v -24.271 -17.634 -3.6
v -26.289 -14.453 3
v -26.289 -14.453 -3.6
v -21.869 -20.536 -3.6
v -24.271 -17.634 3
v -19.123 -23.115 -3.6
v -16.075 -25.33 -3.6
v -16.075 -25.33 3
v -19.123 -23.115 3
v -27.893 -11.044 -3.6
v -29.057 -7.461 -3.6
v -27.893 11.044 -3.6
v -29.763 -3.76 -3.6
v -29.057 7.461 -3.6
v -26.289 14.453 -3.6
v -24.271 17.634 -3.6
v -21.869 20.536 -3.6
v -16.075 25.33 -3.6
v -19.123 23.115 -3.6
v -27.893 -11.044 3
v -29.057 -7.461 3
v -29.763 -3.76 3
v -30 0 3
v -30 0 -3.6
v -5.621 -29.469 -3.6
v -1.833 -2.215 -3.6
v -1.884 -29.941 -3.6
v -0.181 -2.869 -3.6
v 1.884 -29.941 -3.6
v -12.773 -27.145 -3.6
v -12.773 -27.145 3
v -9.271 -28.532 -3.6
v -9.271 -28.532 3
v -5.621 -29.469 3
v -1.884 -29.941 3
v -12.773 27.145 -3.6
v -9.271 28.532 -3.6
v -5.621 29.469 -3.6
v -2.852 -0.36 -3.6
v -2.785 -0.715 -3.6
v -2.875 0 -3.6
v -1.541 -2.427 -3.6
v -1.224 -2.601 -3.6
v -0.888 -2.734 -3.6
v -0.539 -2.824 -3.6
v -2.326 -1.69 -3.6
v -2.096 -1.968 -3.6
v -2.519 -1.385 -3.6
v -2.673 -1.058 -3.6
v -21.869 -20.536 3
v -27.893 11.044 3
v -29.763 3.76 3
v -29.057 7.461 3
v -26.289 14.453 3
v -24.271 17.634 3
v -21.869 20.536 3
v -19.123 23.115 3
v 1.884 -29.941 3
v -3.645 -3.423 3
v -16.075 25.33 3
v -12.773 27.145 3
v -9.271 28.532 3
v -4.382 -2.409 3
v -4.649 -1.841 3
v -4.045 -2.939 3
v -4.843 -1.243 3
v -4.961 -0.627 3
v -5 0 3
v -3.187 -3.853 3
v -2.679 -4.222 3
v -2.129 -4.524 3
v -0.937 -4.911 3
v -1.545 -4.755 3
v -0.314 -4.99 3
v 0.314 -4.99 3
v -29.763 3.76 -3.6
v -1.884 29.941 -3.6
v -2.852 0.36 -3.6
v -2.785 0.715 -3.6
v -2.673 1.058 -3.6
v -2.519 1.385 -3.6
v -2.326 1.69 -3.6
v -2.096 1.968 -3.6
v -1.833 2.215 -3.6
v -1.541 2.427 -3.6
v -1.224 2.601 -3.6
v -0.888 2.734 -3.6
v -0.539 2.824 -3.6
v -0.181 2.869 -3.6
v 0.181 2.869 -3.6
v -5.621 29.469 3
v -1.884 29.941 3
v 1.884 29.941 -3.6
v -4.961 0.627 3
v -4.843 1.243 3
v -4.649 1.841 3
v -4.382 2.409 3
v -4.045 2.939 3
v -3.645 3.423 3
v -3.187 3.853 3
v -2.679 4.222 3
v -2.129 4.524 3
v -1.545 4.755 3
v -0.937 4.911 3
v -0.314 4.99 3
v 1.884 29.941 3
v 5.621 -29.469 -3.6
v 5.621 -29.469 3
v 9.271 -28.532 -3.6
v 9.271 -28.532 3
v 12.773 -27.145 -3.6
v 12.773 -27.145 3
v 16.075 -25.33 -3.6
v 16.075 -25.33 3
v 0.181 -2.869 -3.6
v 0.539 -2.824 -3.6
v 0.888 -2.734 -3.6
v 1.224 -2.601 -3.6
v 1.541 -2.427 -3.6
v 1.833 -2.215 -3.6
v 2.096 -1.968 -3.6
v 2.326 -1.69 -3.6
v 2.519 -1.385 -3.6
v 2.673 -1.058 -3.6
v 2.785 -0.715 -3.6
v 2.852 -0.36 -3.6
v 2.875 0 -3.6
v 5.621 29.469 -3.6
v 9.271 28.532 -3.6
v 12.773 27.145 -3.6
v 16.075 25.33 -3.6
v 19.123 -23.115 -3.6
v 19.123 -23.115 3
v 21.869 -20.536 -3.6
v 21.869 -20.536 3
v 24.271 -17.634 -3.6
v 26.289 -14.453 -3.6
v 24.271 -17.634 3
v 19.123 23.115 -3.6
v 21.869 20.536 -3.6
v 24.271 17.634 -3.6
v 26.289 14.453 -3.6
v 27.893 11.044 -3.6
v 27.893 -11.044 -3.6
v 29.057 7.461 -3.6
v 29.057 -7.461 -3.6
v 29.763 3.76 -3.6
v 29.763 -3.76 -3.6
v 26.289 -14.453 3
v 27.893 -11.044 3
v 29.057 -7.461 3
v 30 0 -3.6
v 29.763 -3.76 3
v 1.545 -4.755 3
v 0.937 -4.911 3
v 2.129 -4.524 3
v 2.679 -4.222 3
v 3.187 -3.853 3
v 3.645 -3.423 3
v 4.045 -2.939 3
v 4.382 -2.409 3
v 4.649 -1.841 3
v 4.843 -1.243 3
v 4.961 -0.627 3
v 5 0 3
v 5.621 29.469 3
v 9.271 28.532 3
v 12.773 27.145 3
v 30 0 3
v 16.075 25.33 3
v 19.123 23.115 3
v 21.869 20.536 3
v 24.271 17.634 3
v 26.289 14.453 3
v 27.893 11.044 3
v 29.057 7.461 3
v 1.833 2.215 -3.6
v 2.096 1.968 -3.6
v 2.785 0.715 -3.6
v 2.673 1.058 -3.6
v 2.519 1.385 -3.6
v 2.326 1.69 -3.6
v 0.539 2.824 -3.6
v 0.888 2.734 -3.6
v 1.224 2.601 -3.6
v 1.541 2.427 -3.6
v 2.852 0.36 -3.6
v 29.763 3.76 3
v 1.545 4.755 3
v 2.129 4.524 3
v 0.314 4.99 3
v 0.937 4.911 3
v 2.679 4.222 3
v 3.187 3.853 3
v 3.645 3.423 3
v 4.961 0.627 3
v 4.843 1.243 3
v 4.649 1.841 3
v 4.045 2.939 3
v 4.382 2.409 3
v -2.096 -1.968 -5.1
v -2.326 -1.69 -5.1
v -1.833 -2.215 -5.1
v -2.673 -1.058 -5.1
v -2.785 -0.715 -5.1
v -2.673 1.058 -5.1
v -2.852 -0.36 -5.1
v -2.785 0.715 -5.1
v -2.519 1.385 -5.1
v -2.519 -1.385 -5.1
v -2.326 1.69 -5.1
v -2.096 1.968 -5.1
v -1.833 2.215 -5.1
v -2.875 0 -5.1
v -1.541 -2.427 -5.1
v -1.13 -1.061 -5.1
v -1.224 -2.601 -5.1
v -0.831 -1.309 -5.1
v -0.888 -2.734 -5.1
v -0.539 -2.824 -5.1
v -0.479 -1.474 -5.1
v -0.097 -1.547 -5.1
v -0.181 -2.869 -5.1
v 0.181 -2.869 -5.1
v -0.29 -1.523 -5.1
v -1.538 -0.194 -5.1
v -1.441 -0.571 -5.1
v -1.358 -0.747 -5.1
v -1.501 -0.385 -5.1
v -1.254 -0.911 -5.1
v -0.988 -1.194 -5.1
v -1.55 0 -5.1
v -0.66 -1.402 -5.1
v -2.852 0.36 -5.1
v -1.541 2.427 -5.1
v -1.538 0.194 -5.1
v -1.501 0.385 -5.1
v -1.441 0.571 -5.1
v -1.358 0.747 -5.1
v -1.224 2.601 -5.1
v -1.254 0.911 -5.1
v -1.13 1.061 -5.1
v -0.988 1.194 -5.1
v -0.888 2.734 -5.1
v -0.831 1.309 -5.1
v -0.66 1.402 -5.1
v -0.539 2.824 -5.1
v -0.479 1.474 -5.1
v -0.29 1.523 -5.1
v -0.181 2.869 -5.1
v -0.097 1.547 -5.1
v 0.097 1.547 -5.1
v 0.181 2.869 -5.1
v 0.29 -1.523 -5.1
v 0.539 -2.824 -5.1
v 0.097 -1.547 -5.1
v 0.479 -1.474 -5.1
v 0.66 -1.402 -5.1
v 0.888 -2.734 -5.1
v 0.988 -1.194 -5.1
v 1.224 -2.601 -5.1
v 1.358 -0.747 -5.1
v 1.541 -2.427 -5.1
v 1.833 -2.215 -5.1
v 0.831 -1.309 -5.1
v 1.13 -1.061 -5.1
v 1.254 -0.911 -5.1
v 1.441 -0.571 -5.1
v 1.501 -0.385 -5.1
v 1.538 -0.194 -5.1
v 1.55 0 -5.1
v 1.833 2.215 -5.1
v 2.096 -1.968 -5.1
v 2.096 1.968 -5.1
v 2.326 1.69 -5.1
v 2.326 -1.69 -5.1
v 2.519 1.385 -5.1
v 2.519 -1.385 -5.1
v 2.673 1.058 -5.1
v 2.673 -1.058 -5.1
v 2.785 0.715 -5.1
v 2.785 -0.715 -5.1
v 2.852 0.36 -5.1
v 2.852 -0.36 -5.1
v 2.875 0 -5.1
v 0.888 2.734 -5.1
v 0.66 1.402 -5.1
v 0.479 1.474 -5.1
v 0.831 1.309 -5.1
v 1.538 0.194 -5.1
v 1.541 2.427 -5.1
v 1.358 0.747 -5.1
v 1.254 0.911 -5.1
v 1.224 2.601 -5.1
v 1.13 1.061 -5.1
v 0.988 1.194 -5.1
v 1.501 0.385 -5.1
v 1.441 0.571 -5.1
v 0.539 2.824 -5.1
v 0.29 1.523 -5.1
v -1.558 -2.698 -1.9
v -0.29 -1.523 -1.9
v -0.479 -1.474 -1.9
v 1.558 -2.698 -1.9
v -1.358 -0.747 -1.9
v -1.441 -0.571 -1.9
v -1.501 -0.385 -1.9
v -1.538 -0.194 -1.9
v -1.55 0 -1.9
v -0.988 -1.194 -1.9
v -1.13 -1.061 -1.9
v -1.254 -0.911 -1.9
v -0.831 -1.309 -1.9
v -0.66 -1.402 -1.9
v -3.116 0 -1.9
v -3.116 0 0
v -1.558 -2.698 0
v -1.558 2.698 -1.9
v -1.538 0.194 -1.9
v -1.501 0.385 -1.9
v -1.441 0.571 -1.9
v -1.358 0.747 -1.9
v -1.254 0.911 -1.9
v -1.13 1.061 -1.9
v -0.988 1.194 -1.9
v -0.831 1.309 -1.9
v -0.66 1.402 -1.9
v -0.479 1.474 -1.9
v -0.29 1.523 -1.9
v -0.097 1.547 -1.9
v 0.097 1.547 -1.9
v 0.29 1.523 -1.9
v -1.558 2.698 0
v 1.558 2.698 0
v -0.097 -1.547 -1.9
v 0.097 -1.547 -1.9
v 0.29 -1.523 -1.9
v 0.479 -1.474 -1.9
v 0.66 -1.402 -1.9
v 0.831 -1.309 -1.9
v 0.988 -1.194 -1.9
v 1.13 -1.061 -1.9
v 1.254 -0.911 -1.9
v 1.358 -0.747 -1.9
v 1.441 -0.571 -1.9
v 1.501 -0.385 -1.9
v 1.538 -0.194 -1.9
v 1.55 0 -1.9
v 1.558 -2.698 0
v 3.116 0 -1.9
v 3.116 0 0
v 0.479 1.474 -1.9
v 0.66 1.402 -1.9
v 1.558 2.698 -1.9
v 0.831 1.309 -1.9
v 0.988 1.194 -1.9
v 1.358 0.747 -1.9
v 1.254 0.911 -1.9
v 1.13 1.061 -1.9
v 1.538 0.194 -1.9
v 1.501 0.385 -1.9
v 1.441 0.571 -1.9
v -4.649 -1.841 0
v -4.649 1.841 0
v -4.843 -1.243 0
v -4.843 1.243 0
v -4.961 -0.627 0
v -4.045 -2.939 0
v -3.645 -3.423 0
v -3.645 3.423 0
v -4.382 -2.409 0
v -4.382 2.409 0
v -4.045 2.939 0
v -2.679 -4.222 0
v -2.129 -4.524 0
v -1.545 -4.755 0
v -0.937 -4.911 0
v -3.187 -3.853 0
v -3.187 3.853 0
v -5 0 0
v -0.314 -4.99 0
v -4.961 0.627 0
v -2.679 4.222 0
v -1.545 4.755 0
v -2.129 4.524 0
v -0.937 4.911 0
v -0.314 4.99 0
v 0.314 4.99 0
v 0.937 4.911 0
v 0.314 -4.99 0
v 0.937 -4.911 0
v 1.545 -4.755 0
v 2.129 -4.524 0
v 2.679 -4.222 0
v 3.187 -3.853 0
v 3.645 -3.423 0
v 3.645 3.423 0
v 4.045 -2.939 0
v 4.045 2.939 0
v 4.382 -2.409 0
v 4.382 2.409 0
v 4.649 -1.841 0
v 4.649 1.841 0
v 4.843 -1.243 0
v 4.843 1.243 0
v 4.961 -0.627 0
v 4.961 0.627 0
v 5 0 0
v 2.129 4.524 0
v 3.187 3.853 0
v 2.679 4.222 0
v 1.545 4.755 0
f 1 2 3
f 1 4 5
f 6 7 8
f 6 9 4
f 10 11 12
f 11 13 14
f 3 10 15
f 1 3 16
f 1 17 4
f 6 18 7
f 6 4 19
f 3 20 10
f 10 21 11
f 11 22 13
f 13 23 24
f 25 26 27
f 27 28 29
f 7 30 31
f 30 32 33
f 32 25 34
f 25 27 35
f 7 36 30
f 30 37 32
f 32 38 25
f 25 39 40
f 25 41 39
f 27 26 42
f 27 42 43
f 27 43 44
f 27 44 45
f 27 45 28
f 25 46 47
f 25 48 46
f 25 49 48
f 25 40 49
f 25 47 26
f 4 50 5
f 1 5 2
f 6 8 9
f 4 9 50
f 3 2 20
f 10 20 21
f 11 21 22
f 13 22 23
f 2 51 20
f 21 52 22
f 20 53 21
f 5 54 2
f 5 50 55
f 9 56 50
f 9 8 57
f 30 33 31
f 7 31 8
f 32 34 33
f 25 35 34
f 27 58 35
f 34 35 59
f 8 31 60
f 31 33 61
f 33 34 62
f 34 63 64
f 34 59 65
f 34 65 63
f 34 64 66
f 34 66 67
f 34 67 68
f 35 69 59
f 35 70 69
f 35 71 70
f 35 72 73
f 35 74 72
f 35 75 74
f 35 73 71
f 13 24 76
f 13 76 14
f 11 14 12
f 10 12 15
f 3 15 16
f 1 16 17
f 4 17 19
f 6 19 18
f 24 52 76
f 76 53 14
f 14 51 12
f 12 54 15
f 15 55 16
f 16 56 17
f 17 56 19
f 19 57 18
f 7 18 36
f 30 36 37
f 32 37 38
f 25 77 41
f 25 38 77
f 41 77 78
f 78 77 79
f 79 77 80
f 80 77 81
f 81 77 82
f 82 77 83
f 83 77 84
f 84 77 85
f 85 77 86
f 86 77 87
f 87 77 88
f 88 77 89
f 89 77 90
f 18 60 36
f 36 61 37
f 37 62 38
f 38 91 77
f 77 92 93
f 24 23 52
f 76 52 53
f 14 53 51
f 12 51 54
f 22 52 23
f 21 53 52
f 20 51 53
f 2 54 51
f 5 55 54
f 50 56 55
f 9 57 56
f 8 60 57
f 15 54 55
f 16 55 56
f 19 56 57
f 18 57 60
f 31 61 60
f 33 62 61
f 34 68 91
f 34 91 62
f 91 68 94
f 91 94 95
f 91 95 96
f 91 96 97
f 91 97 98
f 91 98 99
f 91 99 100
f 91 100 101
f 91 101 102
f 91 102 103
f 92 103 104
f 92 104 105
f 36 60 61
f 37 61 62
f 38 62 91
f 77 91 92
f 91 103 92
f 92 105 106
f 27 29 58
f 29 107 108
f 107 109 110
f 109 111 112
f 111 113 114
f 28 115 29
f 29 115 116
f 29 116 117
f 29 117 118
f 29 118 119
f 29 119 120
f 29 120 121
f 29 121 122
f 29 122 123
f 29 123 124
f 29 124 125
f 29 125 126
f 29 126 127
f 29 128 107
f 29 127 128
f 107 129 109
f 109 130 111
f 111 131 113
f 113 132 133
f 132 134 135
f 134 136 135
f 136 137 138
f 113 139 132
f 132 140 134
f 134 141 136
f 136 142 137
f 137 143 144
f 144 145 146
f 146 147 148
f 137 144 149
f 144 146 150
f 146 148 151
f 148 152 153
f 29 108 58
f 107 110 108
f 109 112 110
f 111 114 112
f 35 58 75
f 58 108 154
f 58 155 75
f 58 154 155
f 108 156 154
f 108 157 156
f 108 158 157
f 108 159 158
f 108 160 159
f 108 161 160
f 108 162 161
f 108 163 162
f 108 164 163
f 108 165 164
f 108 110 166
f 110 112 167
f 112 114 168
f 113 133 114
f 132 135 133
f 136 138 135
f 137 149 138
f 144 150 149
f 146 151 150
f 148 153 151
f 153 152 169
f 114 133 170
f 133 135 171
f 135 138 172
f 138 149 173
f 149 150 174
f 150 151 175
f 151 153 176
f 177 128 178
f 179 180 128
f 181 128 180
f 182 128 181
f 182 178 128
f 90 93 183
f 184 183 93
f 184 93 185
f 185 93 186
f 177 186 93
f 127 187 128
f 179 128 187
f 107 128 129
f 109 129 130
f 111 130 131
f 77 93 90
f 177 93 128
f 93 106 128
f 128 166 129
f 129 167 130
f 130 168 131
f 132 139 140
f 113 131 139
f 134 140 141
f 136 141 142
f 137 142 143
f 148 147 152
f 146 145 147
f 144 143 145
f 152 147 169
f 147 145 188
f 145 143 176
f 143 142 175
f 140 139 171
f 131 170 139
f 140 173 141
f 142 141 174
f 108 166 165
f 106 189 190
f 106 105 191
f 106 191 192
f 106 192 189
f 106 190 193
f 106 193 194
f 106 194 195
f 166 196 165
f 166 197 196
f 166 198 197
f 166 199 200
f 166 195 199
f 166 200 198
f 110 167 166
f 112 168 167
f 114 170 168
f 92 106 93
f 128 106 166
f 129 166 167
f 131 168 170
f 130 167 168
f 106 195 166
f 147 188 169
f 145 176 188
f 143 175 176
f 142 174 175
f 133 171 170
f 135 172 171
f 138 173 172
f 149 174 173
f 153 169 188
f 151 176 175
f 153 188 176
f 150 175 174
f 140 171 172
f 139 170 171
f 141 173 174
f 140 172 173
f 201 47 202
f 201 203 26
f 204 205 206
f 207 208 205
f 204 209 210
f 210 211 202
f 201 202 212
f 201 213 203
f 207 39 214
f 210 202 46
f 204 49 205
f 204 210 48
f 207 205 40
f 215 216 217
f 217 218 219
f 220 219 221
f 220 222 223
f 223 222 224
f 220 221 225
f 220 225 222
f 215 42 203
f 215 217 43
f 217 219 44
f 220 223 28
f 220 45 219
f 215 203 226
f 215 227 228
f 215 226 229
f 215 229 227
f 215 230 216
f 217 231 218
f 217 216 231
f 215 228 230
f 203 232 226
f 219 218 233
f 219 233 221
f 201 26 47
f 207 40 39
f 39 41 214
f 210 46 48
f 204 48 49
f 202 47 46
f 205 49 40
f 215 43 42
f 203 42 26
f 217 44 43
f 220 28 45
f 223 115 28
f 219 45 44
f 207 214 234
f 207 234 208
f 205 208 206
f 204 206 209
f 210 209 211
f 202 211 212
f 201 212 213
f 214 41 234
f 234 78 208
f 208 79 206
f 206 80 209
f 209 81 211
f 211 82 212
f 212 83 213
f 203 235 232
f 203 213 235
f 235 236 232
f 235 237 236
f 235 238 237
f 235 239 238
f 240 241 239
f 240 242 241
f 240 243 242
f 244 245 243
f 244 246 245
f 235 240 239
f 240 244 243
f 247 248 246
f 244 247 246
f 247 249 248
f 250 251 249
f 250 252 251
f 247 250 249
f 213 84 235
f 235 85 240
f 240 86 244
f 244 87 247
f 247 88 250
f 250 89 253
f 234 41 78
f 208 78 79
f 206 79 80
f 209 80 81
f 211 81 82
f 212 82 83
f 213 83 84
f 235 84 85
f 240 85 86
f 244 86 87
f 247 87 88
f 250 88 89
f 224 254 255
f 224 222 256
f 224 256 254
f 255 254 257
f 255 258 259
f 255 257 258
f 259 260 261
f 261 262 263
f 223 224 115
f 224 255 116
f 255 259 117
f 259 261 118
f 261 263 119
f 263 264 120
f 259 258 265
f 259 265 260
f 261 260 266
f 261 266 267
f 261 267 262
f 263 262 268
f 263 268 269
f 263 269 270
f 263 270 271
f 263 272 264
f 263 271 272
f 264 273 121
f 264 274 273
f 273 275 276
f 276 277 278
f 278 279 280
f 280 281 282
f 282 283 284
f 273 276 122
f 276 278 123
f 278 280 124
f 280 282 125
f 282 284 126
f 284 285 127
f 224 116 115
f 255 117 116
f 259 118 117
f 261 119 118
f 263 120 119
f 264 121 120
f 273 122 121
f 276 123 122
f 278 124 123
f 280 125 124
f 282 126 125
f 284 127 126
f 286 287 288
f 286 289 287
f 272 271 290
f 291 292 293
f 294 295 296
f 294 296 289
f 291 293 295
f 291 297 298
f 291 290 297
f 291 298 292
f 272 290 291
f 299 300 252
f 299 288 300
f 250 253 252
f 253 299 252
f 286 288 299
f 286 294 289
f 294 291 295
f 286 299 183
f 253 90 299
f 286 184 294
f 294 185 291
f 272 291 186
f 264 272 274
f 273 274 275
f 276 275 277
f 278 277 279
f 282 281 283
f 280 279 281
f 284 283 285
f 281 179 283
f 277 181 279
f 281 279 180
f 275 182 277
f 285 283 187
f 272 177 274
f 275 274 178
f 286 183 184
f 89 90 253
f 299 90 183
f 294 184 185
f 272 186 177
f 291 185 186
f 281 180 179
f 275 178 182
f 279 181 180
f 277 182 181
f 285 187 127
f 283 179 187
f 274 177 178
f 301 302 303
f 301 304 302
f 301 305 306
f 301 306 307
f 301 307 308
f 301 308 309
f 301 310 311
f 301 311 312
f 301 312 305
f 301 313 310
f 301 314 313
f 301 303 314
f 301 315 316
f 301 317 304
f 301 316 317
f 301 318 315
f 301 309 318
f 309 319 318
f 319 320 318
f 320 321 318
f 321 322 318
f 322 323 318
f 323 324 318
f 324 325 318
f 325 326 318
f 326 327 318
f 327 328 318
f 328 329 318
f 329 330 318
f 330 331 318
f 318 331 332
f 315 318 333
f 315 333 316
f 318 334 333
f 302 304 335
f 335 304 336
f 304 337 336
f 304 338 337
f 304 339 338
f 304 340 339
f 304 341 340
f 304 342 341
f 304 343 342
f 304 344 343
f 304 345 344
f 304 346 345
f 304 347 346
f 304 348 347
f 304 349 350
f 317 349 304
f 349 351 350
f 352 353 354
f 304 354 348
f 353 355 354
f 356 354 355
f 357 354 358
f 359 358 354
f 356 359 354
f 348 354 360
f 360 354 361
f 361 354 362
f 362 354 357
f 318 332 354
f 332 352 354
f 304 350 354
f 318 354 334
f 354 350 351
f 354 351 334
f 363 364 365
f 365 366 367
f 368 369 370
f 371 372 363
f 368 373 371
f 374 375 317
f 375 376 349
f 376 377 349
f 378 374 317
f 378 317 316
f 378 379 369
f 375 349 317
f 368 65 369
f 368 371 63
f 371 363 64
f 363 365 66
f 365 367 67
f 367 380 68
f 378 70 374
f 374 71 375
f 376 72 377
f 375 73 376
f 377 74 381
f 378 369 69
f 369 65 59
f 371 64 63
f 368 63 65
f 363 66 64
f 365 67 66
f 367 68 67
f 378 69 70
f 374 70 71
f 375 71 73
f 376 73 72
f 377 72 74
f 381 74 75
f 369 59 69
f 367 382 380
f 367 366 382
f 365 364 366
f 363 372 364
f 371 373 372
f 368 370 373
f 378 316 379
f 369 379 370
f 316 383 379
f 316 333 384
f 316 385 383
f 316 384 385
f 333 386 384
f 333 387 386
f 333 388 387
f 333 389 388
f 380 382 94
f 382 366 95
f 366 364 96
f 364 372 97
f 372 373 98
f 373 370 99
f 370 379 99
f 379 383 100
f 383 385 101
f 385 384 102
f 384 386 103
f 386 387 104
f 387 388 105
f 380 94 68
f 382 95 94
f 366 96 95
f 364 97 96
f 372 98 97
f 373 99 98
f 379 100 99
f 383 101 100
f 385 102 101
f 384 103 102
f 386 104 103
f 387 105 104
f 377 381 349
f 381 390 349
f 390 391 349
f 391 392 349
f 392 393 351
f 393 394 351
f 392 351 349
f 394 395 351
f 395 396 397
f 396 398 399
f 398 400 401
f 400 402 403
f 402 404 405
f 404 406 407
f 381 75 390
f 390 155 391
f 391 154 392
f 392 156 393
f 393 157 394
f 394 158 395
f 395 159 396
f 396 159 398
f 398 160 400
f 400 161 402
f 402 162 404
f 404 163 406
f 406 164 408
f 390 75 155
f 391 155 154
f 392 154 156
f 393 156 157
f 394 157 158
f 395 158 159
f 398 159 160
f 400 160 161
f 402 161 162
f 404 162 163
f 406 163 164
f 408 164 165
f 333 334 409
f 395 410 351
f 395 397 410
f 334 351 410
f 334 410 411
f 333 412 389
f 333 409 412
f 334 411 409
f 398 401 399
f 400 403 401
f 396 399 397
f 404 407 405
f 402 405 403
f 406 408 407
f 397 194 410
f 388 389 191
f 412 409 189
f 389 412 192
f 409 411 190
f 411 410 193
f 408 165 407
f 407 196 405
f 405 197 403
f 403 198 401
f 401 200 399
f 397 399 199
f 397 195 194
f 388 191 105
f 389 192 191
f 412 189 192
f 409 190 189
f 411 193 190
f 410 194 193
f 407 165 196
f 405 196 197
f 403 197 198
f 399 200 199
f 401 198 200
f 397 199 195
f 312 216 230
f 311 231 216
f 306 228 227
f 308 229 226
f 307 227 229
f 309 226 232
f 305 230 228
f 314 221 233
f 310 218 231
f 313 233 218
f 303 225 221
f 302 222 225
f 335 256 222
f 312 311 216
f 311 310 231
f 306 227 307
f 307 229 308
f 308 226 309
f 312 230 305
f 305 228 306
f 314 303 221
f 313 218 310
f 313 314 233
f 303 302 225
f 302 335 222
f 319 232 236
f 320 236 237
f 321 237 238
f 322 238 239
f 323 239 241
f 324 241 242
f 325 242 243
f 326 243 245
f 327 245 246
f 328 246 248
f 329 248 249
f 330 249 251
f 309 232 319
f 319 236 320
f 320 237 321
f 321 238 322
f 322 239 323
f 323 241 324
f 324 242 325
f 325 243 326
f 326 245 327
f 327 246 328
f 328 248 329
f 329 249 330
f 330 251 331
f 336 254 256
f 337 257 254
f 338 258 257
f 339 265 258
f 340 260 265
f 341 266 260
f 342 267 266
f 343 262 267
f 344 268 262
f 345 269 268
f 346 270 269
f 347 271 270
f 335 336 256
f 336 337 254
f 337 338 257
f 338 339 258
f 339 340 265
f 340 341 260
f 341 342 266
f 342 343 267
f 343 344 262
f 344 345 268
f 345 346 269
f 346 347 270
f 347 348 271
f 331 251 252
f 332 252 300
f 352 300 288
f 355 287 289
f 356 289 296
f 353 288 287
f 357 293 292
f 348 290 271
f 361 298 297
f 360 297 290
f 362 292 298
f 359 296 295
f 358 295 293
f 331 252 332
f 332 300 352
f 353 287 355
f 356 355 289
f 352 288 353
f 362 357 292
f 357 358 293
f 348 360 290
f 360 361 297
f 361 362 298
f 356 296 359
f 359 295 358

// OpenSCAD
$fn = 50;

difference() {
	union() {
		translate(v = [0, 0, -3.5999999999999996]) {
			cylinder(h = 6.6, r = 30.0);
		}
		#translate(v = [0, 0, -5.1]) {
			cylinder(h = 5.1, r = 2.875);
		}
	}
	union() {
		translate(v = [0, 0, 0]) {
			rotate(a = [0, 0, 0]) {
				difference() {
					union() {
						translate(v = [0, 0, -1.9]) {
							linear_extrude(height = 1.9) {
								polygon(points = [[3.1158, 0.0], [1.5579000000000005, 2.698361953111554], [-1.5578999999999994, 2.6983619531115544], [-3.1158, 3.815754496783323e-16], [-1.5579000000000014, -2.6983619531115535], [1.557899999999998, -2.6983619531115552]]);
							}
						}
					}
					union();
				}
			}
		}
		#cylinder(h = 3, r = 5.0);
		#translate(v = [0, 0, -100.0]) {
			cylinder(h = 200, r = 1.55);
		}
	}
}
